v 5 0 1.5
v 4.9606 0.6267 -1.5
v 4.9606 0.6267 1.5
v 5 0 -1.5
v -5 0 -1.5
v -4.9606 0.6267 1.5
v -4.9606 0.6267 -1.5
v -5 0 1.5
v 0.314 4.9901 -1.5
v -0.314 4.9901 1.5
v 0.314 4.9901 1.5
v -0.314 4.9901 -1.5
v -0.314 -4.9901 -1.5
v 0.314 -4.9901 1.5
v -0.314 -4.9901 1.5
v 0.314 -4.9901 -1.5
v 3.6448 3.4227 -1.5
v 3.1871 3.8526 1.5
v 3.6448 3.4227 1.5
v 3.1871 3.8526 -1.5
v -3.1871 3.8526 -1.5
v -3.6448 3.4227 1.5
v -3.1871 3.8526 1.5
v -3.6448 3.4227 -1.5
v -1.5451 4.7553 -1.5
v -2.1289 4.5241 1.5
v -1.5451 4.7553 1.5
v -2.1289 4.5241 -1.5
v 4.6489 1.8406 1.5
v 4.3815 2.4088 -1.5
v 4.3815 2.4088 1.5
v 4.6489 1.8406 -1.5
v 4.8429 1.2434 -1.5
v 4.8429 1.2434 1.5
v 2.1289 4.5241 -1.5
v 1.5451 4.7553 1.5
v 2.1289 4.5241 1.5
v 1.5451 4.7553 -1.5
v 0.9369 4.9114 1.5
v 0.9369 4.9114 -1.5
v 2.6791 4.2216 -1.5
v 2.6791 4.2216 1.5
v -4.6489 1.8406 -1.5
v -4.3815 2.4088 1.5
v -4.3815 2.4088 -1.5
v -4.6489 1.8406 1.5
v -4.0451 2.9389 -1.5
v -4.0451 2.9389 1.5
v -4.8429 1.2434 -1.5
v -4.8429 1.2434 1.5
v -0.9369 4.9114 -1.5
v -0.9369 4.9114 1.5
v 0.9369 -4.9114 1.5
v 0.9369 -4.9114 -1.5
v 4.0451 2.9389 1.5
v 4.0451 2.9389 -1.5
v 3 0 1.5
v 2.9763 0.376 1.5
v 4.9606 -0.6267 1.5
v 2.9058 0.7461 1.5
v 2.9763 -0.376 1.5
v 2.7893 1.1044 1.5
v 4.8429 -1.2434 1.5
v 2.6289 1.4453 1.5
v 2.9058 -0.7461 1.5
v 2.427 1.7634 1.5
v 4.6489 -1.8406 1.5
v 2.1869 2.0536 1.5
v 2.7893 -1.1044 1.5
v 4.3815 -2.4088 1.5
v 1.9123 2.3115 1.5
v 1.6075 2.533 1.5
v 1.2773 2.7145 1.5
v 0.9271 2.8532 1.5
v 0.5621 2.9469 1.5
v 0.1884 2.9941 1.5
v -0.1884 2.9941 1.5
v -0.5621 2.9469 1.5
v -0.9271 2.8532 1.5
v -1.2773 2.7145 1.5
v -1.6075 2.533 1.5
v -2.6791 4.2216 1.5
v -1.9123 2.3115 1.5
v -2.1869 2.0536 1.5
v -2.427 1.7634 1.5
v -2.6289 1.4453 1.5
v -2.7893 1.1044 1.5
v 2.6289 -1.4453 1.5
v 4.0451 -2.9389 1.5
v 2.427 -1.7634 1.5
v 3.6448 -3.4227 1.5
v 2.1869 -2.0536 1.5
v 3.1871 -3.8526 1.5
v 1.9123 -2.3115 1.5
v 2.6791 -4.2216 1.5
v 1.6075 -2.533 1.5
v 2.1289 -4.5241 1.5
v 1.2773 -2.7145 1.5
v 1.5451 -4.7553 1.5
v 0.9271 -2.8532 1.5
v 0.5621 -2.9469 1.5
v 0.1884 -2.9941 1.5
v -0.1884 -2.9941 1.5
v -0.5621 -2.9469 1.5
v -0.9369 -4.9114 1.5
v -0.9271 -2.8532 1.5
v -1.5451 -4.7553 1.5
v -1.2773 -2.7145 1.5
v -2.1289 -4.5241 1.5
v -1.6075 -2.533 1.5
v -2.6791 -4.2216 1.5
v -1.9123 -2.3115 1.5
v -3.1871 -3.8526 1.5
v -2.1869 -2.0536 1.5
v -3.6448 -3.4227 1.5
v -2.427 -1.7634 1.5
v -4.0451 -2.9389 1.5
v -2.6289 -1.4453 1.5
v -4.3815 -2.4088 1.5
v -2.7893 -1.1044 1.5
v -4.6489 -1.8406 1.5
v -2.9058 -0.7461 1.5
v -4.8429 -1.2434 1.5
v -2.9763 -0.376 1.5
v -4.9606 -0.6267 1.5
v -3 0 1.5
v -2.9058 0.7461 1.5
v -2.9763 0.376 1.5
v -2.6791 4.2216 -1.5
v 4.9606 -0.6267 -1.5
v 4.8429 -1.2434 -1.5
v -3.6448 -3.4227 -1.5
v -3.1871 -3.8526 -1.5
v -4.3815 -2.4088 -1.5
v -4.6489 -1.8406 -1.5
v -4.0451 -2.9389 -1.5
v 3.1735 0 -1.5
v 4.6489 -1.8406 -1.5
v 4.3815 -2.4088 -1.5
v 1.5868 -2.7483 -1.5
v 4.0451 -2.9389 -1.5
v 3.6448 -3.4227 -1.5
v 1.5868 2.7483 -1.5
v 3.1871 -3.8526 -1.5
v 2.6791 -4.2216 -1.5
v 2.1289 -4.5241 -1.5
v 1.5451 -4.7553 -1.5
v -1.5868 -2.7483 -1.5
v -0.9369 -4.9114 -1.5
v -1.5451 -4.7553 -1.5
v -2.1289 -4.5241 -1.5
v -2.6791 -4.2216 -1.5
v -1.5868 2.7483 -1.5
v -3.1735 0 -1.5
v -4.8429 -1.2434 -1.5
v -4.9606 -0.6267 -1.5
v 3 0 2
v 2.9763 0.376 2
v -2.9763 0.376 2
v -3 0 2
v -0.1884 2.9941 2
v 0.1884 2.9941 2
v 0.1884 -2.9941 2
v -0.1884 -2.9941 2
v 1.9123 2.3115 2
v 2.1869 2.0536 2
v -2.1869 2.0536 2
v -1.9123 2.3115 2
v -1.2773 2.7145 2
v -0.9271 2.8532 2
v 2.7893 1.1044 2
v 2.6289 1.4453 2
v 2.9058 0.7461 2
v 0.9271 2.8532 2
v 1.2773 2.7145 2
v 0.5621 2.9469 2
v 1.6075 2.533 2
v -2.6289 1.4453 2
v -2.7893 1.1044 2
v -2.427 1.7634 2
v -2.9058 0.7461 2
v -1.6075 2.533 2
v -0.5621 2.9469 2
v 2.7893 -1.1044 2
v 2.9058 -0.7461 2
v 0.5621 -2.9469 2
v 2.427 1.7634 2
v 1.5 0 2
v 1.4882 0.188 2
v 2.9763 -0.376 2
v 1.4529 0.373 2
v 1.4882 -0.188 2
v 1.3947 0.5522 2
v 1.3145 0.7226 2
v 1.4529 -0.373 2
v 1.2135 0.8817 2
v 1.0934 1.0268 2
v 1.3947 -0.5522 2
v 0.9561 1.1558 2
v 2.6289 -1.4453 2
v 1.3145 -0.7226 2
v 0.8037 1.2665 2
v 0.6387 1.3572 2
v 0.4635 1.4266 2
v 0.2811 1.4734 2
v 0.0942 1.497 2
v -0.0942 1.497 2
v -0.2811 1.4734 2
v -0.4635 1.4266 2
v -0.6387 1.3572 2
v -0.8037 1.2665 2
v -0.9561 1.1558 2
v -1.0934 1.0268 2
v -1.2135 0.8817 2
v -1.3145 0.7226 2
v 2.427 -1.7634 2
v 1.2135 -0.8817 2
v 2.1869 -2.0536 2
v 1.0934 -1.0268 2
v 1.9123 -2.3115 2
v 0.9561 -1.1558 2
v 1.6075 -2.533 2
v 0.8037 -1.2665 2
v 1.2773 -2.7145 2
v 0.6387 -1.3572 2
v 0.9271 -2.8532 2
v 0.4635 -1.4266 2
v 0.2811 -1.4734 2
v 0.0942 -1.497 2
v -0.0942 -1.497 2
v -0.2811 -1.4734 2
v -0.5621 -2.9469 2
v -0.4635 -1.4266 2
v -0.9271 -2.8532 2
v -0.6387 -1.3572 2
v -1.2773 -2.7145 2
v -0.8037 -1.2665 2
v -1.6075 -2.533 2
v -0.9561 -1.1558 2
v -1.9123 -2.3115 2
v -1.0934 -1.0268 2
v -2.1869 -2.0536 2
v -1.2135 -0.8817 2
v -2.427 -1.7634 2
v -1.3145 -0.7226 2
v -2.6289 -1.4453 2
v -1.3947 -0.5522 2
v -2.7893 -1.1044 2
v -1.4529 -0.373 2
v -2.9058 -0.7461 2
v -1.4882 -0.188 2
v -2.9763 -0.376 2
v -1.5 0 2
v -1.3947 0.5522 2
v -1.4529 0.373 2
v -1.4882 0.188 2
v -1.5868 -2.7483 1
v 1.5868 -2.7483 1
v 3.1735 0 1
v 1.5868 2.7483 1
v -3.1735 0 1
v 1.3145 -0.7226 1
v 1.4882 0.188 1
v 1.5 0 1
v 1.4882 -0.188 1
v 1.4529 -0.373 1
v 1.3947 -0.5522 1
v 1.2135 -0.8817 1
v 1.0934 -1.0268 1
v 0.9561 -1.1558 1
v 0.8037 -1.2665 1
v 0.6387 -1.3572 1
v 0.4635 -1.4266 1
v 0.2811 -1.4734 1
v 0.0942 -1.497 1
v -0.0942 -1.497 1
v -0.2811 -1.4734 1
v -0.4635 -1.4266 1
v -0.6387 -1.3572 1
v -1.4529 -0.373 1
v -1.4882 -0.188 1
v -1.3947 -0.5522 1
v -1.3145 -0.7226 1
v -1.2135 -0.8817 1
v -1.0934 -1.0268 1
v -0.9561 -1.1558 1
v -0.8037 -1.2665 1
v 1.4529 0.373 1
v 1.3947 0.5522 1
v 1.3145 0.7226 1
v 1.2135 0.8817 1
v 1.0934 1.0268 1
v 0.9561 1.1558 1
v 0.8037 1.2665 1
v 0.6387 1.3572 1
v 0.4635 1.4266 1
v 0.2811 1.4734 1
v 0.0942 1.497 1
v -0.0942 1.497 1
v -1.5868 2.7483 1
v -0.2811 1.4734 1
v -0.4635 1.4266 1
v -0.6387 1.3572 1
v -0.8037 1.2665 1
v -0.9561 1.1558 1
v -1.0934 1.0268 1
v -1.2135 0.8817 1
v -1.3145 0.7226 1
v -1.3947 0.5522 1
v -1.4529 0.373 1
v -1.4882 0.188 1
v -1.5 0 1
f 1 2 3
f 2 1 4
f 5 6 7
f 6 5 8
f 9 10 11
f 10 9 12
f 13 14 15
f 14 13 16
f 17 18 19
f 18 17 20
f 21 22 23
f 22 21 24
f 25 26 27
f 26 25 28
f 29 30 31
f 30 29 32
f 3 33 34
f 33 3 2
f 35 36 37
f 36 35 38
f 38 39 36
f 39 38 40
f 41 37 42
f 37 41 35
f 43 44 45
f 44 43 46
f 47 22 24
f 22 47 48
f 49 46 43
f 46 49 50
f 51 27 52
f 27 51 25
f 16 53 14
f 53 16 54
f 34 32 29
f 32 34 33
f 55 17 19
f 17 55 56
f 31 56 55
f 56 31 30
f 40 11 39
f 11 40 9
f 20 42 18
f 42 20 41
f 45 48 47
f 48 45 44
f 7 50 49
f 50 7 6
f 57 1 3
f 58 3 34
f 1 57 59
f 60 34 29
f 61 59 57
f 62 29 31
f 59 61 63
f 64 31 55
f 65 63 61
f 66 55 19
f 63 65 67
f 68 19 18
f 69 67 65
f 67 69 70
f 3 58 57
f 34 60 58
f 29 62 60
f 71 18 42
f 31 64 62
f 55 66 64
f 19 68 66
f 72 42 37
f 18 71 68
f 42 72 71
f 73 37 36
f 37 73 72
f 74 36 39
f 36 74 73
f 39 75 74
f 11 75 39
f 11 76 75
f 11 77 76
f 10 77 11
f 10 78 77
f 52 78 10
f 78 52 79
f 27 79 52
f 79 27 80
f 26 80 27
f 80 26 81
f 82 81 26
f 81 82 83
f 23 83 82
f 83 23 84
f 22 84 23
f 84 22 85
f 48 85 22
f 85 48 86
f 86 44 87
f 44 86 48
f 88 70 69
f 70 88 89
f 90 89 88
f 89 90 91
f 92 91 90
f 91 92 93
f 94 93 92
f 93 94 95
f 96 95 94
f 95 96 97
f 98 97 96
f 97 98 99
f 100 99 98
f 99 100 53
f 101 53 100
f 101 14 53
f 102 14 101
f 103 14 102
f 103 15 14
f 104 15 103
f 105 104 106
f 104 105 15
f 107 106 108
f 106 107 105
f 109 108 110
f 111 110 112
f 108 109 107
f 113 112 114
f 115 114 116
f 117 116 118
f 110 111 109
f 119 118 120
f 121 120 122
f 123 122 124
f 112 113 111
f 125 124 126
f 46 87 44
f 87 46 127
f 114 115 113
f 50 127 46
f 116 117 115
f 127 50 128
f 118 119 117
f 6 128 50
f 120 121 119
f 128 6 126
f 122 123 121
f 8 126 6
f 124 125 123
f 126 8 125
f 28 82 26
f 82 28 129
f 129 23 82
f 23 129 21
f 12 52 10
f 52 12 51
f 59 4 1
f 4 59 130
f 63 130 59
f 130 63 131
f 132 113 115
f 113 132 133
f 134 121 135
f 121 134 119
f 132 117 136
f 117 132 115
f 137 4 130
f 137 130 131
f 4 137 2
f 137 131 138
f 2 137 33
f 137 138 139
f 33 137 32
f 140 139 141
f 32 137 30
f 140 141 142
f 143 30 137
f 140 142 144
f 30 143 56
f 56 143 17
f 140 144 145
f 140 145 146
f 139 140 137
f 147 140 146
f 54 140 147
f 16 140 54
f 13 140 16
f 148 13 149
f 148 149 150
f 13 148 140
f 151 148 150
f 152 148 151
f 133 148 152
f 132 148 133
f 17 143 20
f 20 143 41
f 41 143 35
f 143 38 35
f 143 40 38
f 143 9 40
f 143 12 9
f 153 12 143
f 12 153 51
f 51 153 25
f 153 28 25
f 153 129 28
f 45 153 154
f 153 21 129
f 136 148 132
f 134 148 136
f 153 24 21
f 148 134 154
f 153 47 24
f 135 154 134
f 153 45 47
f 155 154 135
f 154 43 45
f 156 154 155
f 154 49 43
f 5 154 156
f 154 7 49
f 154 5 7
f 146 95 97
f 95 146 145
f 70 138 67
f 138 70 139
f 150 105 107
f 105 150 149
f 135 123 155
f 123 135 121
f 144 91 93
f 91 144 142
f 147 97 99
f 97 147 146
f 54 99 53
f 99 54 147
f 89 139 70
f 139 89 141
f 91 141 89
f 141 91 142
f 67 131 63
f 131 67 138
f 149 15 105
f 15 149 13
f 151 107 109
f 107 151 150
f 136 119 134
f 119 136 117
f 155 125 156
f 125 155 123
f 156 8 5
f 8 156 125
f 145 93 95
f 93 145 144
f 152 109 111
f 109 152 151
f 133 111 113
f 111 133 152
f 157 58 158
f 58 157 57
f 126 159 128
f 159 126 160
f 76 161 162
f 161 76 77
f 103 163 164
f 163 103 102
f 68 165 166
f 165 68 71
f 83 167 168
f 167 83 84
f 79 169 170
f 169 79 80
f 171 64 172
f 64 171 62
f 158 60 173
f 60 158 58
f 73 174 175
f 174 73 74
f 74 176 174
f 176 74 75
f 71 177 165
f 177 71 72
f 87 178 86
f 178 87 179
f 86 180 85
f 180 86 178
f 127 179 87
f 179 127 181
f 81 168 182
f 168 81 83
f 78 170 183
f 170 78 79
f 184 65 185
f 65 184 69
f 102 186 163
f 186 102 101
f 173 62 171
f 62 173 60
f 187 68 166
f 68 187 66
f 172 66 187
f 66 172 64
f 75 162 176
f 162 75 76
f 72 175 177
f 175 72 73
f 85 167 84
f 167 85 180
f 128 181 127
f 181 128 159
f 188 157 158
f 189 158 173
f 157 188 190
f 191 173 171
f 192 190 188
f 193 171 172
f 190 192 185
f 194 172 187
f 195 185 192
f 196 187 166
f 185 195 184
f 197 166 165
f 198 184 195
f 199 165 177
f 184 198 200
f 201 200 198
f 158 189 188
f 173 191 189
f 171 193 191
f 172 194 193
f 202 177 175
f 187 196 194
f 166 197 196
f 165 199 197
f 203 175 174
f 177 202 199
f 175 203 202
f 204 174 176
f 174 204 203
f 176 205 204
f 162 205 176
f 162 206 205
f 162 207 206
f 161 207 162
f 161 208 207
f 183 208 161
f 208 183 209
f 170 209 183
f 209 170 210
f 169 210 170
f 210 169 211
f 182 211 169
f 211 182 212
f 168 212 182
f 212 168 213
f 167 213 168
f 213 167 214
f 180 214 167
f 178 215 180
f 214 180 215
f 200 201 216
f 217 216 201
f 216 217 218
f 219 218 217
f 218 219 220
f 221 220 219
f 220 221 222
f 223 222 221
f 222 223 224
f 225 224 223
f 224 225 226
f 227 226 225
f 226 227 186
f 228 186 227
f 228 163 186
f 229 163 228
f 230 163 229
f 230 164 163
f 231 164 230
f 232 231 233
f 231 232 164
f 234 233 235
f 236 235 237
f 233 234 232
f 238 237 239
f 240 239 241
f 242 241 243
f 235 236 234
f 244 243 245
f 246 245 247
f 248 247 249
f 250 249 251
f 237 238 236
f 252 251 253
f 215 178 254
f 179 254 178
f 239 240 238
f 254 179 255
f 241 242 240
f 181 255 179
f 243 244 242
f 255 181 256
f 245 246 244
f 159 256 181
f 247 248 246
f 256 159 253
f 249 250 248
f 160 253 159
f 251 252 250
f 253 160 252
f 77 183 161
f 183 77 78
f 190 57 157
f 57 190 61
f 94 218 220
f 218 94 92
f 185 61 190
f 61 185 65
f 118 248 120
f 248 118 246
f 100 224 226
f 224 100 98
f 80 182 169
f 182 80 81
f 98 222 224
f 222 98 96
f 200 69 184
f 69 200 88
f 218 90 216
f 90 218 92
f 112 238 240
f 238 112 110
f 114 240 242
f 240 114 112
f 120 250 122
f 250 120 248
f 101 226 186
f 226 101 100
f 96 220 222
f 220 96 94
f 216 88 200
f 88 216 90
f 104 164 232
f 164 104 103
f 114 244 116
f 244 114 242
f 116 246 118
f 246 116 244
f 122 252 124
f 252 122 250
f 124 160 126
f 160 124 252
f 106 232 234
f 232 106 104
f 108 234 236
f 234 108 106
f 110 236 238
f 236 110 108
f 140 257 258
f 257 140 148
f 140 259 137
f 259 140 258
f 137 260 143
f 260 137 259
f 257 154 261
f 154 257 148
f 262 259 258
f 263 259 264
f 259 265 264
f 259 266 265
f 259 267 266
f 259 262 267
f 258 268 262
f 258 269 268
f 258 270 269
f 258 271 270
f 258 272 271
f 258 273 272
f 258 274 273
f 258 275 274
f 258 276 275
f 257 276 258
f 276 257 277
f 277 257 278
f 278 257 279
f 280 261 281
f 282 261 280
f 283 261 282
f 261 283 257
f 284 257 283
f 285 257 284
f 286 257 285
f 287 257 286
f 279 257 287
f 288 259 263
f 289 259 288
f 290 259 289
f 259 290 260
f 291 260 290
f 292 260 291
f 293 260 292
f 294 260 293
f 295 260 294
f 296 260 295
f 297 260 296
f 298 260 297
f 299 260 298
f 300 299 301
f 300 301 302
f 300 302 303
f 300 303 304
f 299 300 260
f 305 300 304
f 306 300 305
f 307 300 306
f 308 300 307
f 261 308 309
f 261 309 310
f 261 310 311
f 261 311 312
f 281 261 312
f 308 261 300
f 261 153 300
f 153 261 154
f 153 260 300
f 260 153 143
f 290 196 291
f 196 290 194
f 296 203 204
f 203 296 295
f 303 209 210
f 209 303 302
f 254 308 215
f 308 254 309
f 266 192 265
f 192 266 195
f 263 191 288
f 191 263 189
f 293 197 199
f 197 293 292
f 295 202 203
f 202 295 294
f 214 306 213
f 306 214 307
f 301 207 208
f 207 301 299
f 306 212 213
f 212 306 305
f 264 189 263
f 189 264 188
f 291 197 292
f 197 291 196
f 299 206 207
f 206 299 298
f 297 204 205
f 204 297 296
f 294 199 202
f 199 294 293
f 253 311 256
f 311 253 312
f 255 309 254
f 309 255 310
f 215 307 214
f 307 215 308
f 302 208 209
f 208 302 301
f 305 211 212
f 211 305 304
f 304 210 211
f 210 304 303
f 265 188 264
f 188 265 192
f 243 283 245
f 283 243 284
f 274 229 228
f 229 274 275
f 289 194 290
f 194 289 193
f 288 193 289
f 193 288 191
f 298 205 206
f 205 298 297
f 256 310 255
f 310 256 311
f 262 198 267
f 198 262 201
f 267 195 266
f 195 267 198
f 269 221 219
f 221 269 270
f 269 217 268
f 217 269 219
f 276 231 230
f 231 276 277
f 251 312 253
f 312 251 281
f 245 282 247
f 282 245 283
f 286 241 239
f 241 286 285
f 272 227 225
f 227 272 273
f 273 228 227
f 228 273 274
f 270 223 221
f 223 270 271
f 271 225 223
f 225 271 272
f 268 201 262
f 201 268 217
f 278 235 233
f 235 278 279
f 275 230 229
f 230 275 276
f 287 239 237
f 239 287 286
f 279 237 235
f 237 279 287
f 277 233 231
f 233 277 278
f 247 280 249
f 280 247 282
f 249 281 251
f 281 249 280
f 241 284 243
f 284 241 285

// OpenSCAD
$fn = 50;


difference() {
	union() {
		translate(v = [0, 0, -1.5000000000]) {
			cylinder(h = 3, r = 5.0000000000);
		}
		translate(v = [0, 0, -1.5000000000]) {
			cylinder(h = 3.5000000000, r = 3.0000000000);
		}
	}
	union() {
		translate(v = [0, 0, -1.5000000000]) {
			rotate(a = [0, 0, 0]) {
				difference() {
					union() {
						linear_extrude(height = 2.5000000000) {
							polygon(points = [[3.1735000000, 0.0000000000], [1.5867500000, 2.7483316189], [-1.5867500000, 2.7483316189], [-3.1735000000, 0.0000000000], [-1.5867500000, -2.7483316189], [1.5867500000, -2.7483316189]]);
						}
					}
					union();
				}
			}
		}
		translate(v = [0, 0, -50.0000000000]) {
			cylinder(h = 100, r = 1.5000000000);
		}
	}
}
